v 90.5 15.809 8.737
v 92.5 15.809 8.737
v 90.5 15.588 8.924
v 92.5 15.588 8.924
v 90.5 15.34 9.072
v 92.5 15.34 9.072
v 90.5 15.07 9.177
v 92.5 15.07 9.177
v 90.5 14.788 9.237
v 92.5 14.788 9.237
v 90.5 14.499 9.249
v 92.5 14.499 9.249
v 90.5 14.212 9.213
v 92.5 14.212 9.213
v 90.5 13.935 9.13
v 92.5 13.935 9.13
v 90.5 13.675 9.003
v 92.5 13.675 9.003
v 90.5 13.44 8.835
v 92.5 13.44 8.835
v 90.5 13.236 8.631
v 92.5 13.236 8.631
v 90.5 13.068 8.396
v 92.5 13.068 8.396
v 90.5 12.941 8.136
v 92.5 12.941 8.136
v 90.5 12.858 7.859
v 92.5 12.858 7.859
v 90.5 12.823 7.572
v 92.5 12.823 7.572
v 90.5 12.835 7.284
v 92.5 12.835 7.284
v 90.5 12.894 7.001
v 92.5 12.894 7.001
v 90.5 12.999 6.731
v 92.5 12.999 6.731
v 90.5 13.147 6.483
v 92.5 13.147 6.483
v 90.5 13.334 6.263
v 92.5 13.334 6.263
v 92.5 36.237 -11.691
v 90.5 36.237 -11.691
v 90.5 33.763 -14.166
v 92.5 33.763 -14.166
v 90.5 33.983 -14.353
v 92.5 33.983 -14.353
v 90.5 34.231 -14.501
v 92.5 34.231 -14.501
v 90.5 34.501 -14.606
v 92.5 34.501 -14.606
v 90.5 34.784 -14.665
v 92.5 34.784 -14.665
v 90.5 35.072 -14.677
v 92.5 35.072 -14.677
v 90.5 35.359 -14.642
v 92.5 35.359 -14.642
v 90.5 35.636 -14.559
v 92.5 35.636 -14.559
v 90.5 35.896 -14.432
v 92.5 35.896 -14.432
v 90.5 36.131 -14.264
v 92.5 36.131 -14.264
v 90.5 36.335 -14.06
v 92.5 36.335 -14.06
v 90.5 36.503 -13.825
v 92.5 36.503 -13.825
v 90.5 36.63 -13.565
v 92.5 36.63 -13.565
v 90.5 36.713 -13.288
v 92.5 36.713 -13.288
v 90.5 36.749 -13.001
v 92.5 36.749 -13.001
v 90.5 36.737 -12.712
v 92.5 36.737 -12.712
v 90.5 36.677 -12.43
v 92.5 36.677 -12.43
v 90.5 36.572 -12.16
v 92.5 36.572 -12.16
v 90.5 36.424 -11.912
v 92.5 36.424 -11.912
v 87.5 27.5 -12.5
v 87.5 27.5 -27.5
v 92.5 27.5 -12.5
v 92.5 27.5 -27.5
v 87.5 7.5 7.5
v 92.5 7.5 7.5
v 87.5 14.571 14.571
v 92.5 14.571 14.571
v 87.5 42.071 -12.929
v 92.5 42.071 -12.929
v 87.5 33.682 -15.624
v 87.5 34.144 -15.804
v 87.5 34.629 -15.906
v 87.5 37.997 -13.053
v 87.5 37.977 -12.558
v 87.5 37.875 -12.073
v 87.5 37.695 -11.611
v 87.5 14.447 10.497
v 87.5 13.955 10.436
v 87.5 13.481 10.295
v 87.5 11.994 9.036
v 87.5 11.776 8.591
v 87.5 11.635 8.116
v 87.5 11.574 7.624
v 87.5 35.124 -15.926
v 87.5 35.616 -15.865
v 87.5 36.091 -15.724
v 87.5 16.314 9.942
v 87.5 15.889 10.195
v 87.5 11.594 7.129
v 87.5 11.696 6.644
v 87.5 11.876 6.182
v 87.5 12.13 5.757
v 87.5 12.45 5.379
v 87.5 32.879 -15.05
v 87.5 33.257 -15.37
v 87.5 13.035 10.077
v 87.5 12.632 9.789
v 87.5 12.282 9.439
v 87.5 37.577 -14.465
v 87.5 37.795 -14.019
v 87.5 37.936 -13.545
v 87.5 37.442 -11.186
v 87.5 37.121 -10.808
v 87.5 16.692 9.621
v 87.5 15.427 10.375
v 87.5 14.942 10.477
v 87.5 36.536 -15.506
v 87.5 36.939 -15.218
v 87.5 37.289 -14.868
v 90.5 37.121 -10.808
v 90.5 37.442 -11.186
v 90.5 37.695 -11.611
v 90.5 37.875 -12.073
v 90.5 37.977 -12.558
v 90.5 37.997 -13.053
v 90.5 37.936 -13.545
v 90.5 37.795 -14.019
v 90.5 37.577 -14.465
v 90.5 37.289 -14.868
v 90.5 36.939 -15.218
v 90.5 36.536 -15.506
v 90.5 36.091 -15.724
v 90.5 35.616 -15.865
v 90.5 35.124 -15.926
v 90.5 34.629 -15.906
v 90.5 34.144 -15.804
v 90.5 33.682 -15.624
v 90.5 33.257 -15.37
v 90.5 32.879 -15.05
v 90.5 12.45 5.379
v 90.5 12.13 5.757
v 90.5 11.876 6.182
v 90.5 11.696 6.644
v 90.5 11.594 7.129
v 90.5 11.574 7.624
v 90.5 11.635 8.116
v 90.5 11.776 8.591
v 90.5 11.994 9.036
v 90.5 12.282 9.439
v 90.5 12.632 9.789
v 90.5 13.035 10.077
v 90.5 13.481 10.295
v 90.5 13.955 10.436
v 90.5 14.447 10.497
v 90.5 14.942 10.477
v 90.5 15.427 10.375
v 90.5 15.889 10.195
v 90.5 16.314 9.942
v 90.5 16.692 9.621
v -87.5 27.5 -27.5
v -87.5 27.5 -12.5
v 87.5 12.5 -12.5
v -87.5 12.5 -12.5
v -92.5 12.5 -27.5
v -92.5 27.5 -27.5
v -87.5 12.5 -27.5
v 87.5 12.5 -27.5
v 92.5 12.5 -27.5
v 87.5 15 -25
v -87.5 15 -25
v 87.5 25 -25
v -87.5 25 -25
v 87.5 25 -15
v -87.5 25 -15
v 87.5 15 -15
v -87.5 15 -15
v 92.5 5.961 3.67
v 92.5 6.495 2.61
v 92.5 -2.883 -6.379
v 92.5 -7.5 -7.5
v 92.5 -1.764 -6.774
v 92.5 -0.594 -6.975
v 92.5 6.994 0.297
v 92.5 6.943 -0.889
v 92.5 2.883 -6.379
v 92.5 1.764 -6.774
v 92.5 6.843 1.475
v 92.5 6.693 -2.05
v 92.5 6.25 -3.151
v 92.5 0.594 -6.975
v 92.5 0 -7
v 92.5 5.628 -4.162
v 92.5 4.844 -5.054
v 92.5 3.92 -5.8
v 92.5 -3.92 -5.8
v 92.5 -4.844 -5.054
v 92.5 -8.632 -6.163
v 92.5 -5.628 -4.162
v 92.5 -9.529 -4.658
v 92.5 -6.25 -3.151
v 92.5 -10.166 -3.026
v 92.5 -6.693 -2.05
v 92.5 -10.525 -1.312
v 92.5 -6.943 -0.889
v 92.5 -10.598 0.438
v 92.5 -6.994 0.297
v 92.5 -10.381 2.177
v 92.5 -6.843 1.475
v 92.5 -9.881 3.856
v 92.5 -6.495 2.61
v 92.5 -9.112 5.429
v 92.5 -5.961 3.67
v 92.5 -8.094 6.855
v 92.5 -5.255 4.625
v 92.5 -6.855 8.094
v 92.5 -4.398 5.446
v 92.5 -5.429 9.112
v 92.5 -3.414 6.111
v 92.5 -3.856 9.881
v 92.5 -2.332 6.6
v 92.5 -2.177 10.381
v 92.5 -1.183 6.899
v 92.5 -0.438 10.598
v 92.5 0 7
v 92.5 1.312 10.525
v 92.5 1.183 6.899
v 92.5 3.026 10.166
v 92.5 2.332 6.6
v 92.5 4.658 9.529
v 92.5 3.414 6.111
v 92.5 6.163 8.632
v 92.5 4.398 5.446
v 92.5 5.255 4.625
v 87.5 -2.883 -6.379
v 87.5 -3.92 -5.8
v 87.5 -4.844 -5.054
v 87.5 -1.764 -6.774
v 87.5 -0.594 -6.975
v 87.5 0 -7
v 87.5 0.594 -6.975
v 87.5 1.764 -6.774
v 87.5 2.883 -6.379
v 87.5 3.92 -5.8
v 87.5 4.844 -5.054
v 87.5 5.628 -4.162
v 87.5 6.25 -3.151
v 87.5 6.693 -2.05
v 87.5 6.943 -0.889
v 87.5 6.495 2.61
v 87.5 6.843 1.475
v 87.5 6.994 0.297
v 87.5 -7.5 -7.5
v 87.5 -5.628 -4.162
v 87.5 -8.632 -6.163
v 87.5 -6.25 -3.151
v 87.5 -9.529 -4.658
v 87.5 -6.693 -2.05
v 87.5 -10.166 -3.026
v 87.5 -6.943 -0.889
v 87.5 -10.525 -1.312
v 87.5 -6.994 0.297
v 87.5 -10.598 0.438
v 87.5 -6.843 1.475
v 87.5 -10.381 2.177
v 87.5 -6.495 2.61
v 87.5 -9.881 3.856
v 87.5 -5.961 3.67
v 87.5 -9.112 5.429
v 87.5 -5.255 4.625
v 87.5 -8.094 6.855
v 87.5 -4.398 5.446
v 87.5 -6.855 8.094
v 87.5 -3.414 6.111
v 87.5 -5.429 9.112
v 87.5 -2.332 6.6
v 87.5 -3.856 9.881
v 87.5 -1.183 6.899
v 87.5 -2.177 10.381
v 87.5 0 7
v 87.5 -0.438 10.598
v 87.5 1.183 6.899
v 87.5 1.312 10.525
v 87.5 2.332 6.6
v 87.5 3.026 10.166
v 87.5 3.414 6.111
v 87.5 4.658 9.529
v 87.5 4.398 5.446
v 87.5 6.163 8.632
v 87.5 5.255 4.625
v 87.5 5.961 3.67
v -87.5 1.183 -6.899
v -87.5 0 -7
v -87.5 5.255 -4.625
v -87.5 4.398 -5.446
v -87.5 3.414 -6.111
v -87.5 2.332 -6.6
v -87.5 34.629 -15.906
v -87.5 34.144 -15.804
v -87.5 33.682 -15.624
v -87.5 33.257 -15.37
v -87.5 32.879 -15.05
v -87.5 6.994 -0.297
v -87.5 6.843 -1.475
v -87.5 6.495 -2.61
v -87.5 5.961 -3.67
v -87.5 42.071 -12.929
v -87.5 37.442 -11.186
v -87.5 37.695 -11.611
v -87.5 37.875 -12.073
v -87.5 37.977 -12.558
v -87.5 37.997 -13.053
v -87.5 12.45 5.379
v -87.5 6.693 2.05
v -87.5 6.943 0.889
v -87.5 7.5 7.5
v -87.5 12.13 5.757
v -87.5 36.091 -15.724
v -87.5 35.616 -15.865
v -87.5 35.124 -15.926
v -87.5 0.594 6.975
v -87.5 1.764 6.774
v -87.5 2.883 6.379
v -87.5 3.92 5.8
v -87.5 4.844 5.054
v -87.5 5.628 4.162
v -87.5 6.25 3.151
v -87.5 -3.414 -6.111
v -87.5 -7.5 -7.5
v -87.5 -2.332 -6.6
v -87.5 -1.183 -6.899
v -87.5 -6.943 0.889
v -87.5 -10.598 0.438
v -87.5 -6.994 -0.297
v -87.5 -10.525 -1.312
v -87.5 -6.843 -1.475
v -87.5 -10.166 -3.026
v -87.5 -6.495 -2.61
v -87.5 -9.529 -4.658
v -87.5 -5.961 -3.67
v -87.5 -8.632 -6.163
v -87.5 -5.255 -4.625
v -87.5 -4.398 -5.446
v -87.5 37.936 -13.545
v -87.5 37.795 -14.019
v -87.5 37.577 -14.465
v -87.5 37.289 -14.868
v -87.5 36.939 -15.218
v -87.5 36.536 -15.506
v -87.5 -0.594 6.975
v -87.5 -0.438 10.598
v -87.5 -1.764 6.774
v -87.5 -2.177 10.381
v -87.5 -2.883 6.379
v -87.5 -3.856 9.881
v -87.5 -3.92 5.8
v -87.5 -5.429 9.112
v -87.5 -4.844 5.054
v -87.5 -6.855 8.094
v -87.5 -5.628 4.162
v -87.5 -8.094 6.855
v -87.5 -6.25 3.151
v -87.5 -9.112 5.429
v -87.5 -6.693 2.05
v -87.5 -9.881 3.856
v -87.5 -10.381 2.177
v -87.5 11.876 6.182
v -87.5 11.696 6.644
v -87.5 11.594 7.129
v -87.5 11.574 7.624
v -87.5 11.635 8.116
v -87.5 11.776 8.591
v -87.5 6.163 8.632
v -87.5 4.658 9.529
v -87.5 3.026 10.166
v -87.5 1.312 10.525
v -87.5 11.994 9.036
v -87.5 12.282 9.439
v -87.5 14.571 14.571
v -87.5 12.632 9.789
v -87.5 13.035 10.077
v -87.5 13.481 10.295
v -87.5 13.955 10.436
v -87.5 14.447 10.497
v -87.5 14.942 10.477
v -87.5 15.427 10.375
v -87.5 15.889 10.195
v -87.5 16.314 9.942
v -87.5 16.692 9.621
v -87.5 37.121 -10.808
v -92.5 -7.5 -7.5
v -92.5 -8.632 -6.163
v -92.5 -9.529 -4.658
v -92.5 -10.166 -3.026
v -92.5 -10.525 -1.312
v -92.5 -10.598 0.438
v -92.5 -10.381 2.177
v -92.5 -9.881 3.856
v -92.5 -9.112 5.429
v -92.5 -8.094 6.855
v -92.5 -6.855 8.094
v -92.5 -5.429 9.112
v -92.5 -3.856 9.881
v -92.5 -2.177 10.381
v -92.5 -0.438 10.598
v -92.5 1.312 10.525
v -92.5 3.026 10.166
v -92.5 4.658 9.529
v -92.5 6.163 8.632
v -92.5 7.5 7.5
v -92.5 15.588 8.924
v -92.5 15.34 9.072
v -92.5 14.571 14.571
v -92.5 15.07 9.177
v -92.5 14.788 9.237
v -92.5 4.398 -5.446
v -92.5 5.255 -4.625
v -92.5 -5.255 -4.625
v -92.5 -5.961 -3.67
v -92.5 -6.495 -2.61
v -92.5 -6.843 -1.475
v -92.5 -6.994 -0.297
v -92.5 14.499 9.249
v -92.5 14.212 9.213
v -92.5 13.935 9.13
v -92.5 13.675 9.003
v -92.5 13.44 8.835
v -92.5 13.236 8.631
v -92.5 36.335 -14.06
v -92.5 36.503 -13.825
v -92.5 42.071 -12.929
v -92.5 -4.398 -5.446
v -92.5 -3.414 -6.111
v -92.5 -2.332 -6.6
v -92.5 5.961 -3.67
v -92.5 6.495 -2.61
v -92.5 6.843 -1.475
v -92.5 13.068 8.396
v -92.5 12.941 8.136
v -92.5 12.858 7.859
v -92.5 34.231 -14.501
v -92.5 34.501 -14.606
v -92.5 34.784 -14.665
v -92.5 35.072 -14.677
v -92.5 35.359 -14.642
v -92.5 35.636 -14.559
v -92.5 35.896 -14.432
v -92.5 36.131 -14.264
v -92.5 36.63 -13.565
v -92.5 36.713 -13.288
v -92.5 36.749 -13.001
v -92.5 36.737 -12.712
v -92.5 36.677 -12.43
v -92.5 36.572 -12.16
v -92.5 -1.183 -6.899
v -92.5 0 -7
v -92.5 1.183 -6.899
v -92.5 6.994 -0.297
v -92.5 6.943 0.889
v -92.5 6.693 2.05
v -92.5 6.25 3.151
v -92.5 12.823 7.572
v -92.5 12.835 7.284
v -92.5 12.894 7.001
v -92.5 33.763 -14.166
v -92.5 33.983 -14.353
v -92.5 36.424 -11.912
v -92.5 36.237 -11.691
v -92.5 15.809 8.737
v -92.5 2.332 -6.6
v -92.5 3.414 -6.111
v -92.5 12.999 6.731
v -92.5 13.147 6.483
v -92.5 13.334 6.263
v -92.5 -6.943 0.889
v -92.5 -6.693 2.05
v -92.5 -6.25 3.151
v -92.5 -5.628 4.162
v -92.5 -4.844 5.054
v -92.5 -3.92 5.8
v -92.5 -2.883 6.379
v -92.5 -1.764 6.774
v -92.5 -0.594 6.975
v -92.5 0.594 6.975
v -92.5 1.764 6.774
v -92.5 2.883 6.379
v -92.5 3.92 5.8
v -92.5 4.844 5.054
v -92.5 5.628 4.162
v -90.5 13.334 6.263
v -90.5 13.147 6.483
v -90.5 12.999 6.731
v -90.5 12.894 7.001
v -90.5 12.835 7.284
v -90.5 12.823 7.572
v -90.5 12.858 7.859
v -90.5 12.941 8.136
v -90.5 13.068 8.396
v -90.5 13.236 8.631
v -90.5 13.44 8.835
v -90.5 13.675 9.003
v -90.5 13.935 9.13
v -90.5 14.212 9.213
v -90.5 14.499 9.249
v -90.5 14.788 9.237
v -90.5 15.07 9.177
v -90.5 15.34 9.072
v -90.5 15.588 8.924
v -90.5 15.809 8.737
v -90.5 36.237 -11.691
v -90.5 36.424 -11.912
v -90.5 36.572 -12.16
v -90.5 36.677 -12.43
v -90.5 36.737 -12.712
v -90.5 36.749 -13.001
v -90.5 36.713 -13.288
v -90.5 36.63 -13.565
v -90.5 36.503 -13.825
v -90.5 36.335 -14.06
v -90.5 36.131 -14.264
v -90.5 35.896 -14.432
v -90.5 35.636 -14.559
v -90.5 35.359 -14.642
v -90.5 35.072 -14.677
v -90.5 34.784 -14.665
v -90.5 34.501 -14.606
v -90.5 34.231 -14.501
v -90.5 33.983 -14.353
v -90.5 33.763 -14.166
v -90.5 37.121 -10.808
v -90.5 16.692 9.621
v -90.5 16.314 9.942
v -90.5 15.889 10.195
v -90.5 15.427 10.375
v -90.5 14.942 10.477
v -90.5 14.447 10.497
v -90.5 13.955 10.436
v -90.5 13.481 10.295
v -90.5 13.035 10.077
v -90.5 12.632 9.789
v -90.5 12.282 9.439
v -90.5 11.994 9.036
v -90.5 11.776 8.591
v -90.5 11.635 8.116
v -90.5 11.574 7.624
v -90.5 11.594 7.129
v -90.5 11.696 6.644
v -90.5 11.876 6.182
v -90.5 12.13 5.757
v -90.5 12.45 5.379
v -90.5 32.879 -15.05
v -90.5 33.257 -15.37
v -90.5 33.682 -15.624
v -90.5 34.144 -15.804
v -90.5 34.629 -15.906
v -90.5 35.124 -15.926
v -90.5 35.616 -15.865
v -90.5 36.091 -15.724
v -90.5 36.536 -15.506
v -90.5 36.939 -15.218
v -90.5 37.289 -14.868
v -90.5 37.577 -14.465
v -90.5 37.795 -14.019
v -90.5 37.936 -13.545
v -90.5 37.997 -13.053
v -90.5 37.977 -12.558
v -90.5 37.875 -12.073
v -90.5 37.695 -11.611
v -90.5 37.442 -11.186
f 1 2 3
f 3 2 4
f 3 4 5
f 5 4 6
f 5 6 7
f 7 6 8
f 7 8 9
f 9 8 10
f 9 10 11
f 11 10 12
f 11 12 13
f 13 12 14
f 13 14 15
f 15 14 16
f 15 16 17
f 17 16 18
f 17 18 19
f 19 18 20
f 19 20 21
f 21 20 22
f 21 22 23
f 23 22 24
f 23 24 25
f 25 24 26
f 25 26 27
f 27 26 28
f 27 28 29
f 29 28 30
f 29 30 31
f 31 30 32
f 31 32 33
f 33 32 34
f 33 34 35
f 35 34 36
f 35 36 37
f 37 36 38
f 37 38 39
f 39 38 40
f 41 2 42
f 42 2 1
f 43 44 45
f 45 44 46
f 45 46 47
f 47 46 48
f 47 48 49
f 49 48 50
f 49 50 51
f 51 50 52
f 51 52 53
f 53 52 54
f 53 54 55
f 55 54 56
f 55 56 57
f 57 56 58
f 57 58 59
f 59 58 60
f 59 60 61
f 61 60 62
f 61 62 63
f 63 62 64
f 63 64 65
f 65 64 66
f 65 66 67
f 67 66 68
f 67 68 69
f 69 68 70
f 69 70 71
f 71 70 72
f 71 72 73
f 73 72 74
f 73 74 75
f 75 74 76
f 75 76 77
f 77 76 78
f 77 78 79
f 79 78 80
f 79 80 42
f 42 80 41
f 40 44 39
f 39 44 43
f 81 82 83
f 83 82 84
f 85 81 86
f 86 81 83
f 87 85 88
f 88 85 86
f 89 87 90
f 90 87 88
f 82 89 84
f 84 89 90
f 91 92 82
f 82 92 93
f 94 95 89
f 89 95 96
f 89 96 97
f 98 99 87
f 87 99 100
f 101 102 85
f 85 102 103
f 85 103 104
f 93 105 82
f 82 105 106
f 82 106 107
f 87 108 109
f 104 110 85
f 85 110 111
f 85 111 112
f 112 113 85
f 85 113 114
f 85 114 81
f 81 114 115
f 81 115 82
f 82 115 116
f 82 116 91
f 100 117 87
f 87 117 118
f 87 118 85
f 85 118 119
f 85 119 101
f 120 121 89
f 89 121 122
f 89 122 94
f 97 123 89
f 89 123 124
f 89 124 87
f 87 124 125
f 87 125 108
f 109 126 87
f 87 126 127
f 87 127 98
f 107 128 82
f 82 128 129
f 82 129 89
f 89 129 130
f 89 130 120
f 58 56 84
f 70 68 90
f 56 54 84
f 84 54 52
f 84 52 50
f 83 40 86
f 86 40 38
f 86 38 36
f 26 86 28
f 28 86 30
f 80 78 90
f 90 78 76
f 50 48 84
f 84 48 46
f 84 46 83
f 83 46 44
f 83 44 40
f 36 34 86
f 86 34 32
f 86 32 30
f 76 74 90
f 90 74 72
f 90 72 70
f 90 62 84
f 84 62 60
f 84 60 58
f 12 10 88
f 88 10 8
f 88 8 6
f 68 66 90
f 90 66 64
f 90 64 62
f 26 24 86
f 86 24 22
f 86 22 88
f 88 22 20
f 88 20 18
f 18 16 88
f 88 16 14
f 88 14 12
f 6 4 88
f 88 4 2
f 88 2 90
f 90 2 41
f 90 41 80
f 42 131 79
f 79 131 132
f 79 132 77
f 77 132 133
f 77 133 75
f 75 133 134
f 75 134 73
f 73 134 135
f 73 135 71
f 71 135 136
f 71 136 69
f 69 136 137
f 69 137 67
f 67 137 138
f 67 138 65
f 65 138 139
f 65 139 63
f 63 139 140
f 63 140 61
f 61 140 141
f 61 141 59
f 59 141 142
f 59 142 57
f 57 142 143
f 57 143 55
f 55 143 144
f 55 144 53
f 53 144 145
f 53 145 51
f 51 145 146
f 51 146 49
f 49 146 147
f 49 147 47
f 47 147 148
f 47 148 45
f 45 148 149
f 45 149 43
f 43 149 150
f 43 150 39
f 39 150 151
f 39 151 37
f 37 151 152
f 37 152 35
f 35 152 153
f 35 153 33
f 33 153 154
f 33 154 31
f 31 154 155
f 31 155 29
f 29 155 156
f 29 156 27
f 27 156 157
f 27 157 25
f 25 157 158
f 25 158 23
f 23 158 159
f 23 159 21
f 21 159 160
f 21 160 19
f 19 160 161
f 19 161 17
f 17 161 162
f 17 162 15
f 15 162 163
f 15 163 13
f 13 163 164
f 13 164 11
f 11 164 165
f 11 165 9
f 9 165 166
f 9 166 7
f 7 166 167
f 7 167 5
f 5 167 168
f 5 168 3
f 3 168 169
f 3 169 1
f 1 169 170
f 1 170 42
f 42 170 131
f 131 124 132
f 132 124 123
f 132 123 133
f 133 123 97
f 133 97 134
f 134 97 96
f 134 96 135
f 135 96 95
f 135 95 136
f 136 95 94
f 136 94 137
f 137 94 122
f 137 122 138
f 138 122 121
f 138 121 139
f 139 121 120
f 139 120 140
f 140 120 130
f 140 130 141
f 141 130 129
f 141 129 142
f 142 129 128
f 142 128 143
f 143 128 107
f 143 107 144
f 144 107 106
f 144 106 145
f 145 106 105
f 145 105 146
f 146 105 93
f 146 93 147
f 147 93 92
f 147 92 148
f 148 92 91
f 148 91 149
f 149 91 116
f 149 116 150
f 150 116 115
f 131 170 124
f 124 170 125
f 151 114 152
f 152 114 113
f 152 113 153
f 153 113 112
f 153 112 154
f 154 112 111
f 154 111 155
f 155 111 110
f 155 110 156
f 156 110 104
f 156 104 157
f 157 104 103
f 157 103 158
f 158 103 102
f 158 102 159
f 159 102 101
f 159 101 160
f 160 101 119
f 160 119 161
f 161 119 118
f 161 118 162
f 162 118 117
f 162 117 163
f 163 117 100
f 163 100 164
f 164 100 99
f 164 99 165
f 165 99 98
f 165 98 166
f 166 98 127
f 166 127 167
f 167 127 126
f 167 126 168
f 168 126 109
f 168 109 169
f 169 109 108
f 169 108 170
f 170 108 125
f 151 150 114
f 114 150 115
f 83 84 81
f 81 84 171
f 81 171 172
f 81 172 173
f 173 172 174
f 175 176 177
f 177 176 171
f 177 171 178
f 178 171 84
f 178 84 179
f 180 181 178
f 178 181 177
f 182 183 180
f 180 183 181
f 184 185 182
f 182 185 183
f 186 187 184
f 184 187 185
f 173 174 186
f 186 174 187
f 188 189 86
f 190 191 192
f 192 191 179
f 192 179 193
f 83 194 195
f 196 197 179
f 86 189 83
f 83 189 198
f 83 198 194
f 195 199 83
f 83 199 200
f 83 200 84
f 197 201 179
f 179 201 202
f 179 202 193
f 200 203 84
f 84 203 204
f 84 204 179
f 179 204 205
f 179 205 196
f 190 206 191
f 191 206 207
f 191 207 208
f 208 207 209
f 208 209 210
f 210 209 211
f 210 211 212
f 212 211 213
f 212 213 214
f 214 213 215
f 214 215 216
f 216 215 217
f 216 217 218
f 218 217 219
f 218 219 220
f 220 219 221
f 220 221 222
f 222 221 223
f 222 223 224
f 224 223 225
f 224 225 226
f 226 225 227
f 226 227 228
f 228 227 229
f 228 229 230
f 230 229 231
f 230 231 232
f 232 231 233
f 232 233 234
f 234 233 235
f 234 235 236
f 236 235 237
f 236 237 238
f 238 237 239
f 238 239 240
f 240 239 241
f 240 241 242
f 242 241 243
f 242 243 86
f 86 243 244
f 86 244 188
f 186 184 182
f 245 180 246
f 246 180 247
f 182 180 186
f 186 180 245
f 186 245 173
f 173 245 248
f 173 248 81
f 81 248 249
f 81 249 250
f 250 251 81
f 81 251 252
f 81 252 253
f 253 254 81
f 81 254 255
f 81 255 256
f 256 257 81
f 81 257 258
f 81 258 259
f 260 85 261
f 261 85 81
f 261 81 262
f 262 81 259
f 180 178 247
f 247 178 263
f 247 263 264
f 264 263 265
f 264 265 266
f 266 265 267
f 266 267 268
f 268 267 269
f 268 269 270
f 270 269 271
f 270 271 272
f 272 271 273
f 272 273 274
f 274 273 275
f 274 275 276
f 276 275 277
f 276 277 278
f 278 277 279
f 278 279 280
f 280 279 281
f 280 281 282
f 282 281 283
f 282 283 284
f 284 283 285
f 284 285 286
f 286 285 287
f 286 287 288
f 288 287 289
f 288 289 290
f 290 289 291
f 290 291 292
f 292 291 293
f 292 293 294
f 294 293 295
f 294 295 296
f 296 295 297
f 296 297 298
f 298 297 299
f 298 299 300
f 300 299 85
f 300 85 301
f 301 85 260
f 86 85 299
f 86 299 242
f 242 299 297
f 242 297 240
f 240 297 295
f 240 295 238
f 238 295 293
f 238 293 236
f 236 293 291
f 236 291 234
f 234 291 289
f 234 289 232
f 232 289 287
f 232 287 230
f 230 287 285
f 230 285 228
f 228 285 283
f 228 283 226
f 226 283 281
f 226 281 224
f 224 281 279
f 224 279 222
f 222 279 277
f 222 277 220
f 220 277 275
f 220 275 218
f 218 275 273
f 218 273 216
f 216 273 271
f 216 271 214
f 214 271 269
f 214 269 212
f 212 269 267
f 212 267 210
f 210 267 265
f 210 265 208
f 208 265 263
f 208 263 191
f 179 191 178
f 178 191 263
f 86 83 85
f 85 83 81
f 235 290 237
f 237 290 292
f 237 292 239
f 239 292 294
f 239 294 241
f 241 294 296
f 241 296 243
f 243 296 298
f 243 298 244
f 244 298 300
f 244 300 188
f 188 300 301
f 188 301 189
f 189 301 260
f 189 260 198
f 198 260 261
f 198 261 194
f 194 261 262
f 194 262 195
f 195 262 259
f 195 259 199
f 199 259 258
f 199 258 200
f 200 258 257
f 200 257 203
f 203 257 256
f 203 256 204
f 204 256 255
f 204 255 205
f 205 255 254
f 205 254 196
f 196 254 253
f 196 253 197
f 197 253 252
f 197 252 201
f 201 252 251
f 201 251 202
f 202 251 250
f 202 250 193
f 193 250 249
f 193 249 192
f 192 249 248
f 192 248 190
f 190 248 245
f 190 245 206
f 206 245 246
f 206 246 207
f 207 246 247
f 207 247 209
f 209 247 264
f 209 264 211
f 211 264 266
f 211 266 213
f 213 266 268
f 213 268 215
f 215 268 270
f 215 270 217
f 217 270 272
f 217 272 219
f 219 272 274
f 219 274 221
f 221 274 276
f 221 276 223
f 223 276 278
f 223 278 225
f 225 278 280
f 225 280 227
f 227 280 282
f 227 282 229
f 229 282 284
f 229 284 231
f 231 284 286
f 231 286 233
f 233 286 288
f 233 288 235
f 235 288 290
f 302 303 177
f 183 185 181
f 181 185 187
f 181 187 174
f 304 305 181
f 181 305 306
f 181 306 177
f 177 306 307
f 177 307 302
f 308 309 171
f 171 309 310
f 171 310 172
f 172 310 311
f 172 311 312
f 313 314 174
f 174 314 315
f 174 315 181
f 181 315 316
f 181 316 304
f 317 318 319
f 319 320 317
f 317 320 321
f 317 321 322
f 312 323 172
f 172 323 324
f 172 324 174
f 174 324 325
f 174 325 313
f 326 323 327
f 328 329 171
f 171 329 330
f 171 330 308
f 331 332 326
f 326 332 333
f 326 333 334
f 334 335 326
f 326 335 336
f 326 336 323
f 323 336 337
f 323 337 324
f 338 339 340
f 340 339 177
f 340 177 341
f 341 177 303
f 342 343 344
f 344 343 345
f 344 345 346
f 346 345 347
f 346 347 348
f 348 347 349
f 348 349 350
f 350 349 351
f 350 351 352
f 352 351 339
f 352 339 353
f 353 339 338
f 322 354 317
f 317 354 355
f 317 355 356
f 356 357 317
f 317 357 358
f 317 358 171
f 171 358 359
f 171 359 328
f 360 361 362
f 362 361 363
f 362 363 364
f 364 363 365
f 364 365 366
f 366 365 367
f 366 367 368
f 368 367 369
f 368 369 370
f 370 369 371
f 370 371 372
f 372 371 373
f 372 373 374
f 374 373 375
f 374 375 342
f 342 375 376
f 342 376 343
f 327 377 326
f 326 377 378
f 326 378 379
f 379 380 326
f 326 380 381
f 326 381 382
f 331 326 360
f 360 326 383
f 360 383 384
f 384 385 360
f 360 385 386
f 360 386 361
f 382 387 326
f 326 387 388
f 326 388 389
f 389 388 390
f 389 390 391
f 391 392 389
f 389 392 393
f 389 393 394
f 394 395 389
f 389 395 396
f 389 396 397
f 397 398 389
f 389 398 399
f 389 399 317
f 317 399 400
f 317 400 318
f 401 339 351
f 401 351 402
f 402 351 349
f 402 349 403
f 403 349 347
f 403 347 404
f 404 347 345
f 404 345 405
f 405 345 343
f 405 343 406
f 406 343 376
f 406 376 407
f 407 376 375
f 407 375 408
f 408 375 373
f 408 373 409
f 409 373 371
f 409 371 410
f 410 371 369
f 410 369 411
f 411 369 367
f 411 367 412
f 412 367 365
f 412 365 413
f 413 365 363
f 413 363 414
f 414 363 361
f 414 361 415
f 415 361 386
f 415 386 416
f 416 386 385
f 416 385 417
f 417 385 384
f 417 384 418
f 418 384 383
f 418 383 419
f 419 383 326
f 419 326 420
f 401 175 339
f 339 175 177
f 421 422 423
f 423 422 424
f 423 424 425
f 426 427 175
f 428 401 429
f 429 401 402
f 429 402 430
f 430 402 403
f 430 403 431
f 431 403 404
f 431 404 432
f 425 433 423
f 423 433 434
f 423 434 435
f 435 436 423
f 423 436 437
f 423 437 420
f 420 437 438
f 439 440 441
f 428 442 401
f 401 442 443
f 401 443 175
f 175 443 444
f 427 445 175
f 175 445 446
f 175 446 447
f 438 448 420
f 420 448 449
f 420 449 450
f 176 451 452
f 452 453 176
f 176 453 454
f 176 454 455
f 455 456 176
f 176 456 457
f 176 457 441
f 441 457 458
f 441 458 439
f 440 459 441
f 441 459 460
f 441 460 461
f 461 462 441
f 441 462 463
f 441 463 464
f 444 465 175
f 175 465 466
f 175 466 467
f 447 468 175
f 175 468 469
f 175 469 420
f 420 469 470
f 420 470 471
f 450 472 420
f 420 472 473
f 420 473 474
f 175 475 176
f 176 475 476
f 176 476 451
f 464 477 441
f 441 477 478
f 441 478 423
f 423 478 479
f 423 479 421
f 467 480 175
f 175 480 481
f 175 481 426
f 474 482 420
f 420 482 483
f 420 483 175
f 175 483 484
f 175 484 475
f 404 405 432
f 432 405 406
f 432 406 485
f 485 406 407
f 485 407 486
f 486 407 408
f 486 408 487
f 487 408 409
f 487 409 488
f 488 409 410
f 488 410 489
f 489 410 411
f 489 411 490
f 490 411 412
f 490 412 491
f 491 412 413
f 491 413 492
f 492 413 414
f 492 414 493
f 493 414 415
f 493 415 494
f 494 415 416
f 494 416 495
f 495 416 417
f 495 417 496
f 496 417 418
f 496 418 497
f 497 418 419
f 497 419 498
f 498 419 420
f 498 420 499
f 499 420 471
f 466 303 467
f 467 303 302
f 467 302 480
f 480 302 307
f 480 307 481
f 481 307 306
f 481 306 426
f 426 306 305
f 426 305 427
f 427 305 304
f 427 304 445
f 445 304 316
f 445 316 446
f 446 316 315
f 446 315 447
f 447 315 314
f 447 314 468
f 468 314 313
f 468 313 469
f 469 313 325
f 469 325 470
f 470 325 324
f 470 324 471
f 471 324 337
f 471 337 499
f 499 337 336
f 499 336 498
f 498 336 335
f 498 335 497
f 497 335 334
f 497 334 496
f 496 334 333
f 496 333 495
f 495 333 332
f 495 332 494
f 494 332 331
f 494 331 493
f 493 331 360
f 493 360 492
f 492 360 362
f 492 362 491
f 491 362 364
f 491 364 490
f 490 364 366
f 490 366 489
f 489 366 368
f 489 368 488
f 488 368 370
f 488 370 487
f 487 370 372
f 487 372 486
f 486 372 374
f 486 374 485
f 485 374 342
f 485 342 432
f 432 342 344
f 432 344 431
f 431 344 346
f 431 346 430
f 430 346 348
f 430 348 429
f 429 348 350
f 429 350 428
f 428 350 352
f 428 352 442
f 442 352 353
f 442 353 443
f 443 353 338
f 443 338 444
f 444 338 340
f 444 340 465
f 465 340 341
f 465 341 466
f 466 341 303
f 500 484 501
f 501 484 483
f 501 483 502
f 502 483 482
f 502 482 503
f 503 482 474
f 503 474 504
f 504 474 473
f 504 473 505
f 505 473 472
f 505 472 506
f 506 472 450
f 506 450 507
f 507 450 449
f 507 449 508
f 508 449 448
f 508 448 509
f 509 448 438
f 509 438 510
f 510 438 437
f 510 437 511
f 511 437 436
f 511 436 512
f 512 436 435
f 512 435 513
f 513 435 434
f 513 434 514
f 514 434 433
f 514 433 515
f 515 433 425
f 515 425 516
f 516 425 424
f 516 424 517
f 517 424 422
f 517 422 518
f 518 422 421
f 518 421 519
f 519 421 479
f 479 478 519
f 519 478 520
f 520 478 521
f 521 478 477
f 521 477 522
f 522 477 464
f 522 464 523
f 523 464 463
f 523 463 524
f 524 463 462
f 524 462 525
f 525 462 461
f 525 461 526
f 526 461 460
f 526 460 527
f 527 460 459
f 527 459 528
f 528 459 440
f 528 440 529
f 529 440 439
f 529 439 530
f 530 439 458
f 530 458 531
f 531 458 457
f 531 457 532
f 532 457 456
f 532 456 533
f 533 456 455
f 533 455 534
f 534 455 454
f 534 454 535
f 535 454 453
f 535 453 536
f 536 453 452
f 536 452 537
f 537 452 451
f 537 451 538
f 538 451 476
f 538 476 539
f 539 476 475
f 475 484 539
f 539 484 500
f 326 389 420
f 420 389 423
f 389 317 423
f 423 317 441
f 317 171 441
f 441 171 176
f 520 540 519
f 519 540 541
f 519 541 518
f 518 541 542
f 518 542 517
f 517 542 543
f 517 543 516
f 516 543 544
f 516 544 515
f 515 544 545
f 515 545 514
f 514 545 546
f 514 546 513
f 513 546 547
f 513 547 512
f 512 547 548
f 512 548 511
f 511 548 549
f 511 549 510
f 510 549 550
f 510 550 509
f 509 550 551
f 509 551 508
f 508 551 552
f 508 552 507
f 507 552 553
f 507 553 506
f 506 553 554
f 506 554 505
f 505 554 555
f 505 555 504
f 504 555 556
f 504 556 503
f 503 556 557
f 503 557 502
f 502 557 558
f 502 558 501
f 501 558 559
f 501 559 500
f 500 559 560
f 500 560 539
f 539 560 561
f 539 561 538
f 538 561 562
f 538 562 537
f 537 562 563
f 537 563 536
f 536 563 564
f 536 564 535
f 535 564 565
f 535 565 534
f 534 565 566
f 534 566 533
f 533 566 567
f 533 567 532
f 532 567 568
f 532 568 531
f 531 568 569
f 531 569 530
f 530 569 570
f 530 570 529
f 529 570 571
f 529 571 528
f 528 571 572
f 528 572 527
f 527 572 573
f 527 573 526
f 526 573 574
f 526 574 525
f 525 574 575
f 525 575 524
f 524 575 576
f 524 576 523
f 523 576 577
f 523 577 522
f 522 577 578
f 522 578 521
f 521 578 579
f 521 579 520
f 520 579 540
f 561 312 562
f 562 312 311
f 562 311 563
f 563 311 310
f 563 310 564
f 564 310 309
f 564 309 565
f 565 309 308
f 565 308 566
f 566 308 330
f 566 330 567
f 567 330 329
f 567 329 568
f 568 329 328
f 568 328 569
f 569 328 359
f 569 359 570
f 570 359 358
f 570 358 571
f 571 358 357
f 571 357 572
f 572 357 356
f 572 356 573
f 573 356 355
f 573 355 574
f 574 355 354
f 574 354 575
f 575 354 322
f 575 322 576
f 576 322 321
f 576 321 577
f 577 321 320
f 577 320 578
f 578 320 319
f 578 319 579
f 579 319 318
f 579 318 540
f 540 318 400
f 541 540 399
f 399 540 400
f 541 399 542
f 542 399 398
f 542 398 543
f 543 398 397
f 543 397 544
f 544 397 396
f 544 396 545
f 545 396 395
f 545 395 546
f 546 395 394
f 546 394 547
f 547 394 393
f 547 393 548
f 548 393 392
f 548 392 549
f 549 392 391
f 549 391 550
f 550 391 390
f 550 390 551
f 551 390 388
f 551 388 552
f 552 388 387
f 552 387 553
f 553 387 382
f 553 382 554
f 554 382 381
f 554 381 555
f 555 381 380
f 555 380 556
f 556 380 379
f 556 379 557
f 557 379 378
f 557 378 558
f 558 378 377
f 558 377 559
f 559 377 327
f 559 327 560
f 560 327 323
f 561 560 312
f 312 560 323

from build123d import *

# Parameters (mm, degrees)
EXTRUDE_1_DEPTH      = 87.5
EXTRUDE_1_DEPTH_BACK = 87.5
SKETCH_2_R           = 7
EXTRUDE_2_DEPTH      = 5
EXTRUDE_3_DEPTH      = 5
CUT_EXTRUDE_1_DEPTH  = 10
CUT_EXTRUDE_2_DEPTH  = 3


with BuildPart() as part:
    # 草图1 → 凸台-拉伸1 (new, two sides: drawn at the far end of the back side and taken through both)
    with BuildSketch(Plane(origin=(0, 0, 0), x_dir=(0, 0, -1), z_dir=(1, 0, 0)).offset(-EXTRUDE_1_DEPTH_BACK)):
        Polygon((12.5, 12.5), (15, 15), (15, 25), (25, 25), (25, 15), (27.5, 12.5), (27.5, 27.5), (12.5, 27.5), align=None)
    extrude(amount=EXTRUDE_1_DEPTH + EXTRUDE_1_DEPTH_BACK)

    # 草图2 → 凸台-拉伸2 (add)
    with BuildSketch(Plane(origin=(87.5, 0, 0), x_dir=(0, 0, -1), z_dir=(1, 0, 0))):
        with BuildLine():
            Line((-7.5, 7.5), (12.5, 27.5))
            Line((12.5, 27.5), (27.5, 27.5))
            Line((27.5, 27.5), (27.5, 12.5))
            Line((27.5, 12.5), (7.5, -7.5))
            ThreePointArc((7.5, -7.5), (-7.5, -7.5), (-7.5, 7.5))
        make_face()
        Circle(SKETCH_2_R, mode=Mode.SUBTRACT)
    extrude_2 = extrude(amount=EXTRUDE_2_DEPTH)

    # 镜向4: 凸台-拉伸2 across plane
    add(extrude_2.mirror(Plane(origin=(0, 0, 0), x_dir=(0, 0, 1), z_dir=(1, 0, 0))))


with BuildPart() as body_2:
    # 草图3 → 凸台-拉伸3 (new body)
    with BuildSketch(Plane(origin=(92.5, 0, 0), x_dir=(0, 0, -1), z_dir=(1, 0, 0))):
        Polygon((27.5, 27.5), (12.928932188, 42.071067812), (-14.571067812, 14.571067812), (-7.5, 7.5), (12.5, 27.5), align=None)
    extrude_3 = extrude(amount=-EXTRUDE_3_DEPTH)

    # 草图4 → 切除-拉伸1 (cut)
    with BuildSketch(Plane(origin=(92.5, 0, 0), x_dir=(0, 0, -1), z_dir=(1, 0, 0))):
        with BuildLine():
            Line((-8.737436867, 15.808504679), (11.691495321, 36.237436867))
            ThreePointArc((11.691495321, 36.237436867), (14.166369055, 36.237436867), (14.166369055, 33.762563133))
            Line((14.166369055, 33.762563133), (-6.262563133, 13.333630945))
            ThreePointArc((-6.262563133, 13.333630945), (-8.737436867, 13.333630945), (-8.737436867, 15.808504679))
        make_face()
    cut_extrude_1 = extrude(amount=-CUT_EXTRUDE_1_DEPTH, mode=Mode.SUBTRACT)

    # 草图5 → 切除-拉伸2 (cut)
    with BuildSketch(Plane.ZY.offset(-87.5)):
        with BuildLine():
            Line((-10.807611845, 37.121320344), (9.621320344, 16.692388155))
            ThreePointArc((9.621320344, 16.692388155), (9.621320344, 12.449747468), (5.378679656, 12.449747468))
            Line((5.378679656, 12.449747468), (-15.050252532, 32.878679656))
            ThreePointArc((-15.050252532, 32.878679656), (-15.050252532, 37.121320344), (-10.807611845, 37.121320344))
        make_face()
    cut_extrude_2 = extrude(amount=-CUT_EXTRUDE_2_DEPTH, mode=Mode.SUBTRACT)


with BuildPart() as part_1:
    add(part.part)

    # 镜向7: 凸台-拉伸3, 切除-拉伸1, 切除-拉伸2 across plane
    add(extrude_3.mirror(Plane(origin=(0, 0, 0), x_dir=(0, 0, 1), z_dir=(1, 0, 0))))
    add(cut_extrude_1.mirror(Plane(origin=(0, 0, 0), x_dir=(0, 0, 1), z_dir=(1, 0, 0))), mode=Mode.SUBTRACT)
    add(cut_extrude_2.mirror(Plane(origin=(0, 0, 0), x_dir=(0, 0, 1), z_dir=(1, 0, 0))), mode=Mode.SUBTRACT)


solid = Compound([body_2.part, part_1.part])
